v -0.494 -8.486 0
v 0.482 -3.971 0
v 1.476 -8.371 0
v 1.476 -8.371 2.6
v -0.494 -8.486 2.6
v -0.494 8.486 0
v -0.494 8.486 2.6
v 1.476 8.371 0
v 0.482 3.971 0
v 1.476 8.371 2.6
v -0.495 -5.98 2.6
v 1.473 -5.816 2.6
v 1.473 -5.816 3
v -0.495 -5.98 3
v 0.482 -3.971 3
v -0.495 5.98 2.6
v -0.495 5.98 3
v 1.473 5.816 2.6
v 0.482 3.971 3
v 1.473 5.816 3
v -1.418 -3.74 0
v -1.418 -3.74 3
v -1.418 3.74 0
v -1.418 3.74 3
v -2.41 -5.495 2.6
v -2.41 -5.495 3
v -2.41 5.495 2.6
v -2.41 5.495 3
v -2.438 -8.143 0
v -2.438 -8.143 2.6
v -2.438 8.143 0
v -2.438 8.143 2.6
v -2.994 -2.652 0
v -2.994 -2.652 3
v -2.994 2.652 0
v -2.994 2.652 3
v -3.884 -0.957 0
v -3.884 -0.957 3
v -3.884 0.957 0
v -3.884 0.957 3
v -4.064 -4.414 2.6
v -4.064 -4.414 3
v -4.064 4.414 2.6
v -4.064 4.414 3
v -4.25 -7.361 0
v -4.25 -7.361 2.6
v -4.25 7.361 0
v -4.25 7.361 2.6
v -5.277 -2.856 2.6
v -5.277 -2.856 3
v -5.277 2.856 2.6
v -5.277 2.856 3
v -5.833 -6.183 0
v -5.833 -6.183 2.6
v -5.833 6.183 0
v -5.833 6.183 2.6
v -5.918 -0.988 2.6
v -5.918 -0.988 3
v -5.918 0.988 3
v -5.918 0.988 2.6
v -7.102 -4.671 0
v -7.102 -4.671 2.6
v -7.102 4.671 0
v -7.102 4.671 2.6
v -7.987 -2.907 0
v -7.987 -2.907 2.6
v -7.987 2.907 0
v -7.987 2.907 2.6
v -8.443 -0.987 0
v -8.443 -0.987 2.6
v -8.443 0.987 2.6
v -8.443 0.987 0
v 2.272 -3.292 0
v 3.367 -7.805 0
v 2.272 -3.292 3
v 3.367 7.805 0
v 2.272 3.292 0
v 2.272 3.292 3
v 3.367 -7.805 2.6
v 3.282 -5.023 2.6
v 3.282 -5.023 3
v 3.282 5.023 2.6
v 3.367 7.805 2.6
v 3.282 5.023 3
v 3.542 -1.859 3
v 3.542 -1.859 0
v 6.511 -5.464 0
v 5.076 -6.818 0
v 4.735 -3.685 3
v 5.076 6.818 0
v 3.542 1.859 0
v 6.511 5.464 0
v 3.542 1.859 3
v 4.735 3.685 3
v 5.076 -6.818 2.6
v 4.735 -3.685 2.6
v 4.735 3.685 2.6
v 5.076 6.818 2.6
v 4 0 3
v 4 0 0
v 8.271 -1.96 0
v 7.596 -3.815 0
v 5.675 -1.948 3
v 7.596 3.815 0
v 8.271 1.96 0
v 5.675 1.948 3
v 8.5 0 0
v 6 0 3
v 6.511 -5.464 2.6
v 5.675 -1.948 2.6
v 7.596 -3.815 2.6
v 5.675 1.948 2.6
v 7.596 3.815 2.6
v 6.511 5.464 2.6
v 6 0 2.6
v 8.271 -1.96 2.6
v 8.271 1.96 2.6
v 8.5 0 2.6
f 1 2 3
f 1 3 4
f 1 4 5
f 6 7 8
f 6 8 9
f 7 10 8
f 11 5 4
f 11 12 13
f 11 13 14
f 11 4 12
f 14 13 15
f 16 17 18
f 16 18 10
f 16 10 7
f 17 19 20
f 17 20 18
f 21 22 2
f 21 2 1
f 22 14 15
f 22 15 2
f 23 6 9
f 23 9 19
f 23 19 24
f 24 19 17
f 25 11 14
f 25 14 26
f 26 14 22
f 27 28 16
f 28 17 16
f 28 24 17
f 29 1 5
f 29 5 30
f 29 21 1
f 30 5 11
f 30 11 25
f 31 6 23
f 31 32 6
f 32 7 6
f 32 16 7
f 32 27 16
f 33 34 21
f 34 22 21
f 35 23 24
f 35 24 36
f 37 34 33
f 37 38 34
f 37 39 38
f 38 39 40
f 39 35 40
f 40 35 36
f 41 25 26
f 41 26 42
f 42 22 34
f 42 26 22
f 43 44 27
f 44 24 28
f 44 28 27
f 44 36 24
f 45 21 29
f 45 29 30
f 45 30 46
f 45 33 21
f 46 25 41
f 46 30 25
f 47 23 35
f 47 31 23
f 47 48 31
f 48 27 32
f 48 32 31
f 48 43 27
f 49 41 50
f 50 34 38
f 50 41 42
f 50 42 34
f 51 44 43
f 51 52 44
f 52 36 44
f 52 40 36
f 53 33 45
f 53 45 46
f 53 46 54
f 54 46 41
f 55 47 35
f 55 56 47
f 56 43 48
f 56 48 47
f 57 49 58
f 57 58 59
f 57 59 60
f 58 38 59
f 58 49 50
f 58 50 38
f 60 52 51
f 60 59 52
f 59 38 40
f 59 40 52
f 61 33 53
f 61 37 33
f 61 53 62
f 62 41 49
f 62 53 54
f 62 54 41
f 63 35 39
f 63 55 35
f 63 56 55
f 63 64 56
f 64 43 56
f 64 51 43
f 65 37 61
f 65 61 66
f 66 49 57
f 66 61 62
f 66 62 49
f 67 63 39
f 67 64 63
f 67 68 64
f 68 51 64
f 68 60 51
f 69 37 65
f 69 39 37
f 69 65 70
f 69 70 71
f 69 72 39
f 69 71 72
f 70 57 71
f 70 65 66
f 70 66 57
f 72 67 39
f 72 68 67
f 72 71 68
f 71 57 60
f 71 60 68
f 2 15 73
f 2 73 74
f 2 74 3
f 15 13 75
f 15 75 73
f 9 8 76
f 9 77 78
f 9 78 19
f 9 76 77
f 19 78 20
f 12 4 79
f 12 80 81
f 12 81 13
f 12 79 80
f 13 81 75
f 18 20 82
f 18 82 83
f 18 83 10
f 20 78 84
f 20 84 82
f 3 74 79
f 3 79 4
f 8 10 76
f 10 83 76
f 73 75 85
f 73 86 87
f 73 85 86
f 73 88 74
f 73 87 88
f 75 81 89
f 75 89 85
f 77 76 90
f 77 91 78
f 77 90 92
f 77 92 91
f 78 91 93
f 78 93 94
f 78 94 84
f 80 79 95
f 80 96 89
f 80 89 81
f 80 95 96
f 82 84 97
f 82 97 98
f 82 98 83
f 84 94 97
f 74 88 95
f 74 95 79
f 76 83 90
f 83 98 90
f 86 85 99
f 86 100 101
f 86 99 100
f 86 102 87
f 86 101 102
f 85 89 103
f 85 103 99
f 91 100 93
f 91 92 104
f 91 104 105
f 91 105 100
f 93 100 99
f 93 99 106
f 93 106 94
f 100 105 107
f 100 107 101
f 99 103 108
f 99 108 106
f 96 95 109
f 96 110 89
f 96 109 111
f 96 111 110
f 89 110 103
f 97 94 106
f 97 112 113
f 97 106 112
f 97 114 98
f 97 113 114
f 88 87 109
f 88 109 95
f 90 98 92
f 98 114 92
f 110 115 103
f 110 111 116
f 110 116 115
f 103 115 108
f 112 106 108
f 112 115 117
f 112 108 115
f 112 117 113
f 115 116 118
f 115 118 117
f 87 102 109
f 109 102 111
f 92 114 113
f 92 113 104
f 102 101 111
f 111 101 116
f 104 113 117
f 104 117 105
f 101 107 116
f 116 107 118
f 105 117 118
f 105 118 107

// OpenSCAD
include <../parameters.scad>



/*

Tento dil patri mezi remenici na ose rotoru a "vytisteny plech".
Slouzi k vymezeni mezeri mezi krouzkem plechem. Tento krouzek by
se mel dotykat plechu a nahoře statické části ložisek.
*/


rotor_bearing_spacer_height = 3;
rotor_bearing_spacer_rim_height = 0.4;
rotor_bearing_spacer_diameter = 18-1;
rotor_bearing_spacer_rim_diameter = 12;
rotor_bearing_space_axis_diameter = M8_screw_diameter; //TODO: Není tento parametr nějak moc velký???


module 888_1021(){
    difference(){
        union(){
            cylinder(d = rotor_bearing_spacer_diameter, rotor_bearing_spacer_height - rotor_bearing_spacer_rim_height );
            cylinder(d = rotor_bearing_spacer_rim_diameter, h = rotor_bearing_spacer_height);
        }
    translate([0,0,-1])
        cylinder(d = 8, h = rotor_bearing_spacer_height+2);
    }
}



888_1021();
